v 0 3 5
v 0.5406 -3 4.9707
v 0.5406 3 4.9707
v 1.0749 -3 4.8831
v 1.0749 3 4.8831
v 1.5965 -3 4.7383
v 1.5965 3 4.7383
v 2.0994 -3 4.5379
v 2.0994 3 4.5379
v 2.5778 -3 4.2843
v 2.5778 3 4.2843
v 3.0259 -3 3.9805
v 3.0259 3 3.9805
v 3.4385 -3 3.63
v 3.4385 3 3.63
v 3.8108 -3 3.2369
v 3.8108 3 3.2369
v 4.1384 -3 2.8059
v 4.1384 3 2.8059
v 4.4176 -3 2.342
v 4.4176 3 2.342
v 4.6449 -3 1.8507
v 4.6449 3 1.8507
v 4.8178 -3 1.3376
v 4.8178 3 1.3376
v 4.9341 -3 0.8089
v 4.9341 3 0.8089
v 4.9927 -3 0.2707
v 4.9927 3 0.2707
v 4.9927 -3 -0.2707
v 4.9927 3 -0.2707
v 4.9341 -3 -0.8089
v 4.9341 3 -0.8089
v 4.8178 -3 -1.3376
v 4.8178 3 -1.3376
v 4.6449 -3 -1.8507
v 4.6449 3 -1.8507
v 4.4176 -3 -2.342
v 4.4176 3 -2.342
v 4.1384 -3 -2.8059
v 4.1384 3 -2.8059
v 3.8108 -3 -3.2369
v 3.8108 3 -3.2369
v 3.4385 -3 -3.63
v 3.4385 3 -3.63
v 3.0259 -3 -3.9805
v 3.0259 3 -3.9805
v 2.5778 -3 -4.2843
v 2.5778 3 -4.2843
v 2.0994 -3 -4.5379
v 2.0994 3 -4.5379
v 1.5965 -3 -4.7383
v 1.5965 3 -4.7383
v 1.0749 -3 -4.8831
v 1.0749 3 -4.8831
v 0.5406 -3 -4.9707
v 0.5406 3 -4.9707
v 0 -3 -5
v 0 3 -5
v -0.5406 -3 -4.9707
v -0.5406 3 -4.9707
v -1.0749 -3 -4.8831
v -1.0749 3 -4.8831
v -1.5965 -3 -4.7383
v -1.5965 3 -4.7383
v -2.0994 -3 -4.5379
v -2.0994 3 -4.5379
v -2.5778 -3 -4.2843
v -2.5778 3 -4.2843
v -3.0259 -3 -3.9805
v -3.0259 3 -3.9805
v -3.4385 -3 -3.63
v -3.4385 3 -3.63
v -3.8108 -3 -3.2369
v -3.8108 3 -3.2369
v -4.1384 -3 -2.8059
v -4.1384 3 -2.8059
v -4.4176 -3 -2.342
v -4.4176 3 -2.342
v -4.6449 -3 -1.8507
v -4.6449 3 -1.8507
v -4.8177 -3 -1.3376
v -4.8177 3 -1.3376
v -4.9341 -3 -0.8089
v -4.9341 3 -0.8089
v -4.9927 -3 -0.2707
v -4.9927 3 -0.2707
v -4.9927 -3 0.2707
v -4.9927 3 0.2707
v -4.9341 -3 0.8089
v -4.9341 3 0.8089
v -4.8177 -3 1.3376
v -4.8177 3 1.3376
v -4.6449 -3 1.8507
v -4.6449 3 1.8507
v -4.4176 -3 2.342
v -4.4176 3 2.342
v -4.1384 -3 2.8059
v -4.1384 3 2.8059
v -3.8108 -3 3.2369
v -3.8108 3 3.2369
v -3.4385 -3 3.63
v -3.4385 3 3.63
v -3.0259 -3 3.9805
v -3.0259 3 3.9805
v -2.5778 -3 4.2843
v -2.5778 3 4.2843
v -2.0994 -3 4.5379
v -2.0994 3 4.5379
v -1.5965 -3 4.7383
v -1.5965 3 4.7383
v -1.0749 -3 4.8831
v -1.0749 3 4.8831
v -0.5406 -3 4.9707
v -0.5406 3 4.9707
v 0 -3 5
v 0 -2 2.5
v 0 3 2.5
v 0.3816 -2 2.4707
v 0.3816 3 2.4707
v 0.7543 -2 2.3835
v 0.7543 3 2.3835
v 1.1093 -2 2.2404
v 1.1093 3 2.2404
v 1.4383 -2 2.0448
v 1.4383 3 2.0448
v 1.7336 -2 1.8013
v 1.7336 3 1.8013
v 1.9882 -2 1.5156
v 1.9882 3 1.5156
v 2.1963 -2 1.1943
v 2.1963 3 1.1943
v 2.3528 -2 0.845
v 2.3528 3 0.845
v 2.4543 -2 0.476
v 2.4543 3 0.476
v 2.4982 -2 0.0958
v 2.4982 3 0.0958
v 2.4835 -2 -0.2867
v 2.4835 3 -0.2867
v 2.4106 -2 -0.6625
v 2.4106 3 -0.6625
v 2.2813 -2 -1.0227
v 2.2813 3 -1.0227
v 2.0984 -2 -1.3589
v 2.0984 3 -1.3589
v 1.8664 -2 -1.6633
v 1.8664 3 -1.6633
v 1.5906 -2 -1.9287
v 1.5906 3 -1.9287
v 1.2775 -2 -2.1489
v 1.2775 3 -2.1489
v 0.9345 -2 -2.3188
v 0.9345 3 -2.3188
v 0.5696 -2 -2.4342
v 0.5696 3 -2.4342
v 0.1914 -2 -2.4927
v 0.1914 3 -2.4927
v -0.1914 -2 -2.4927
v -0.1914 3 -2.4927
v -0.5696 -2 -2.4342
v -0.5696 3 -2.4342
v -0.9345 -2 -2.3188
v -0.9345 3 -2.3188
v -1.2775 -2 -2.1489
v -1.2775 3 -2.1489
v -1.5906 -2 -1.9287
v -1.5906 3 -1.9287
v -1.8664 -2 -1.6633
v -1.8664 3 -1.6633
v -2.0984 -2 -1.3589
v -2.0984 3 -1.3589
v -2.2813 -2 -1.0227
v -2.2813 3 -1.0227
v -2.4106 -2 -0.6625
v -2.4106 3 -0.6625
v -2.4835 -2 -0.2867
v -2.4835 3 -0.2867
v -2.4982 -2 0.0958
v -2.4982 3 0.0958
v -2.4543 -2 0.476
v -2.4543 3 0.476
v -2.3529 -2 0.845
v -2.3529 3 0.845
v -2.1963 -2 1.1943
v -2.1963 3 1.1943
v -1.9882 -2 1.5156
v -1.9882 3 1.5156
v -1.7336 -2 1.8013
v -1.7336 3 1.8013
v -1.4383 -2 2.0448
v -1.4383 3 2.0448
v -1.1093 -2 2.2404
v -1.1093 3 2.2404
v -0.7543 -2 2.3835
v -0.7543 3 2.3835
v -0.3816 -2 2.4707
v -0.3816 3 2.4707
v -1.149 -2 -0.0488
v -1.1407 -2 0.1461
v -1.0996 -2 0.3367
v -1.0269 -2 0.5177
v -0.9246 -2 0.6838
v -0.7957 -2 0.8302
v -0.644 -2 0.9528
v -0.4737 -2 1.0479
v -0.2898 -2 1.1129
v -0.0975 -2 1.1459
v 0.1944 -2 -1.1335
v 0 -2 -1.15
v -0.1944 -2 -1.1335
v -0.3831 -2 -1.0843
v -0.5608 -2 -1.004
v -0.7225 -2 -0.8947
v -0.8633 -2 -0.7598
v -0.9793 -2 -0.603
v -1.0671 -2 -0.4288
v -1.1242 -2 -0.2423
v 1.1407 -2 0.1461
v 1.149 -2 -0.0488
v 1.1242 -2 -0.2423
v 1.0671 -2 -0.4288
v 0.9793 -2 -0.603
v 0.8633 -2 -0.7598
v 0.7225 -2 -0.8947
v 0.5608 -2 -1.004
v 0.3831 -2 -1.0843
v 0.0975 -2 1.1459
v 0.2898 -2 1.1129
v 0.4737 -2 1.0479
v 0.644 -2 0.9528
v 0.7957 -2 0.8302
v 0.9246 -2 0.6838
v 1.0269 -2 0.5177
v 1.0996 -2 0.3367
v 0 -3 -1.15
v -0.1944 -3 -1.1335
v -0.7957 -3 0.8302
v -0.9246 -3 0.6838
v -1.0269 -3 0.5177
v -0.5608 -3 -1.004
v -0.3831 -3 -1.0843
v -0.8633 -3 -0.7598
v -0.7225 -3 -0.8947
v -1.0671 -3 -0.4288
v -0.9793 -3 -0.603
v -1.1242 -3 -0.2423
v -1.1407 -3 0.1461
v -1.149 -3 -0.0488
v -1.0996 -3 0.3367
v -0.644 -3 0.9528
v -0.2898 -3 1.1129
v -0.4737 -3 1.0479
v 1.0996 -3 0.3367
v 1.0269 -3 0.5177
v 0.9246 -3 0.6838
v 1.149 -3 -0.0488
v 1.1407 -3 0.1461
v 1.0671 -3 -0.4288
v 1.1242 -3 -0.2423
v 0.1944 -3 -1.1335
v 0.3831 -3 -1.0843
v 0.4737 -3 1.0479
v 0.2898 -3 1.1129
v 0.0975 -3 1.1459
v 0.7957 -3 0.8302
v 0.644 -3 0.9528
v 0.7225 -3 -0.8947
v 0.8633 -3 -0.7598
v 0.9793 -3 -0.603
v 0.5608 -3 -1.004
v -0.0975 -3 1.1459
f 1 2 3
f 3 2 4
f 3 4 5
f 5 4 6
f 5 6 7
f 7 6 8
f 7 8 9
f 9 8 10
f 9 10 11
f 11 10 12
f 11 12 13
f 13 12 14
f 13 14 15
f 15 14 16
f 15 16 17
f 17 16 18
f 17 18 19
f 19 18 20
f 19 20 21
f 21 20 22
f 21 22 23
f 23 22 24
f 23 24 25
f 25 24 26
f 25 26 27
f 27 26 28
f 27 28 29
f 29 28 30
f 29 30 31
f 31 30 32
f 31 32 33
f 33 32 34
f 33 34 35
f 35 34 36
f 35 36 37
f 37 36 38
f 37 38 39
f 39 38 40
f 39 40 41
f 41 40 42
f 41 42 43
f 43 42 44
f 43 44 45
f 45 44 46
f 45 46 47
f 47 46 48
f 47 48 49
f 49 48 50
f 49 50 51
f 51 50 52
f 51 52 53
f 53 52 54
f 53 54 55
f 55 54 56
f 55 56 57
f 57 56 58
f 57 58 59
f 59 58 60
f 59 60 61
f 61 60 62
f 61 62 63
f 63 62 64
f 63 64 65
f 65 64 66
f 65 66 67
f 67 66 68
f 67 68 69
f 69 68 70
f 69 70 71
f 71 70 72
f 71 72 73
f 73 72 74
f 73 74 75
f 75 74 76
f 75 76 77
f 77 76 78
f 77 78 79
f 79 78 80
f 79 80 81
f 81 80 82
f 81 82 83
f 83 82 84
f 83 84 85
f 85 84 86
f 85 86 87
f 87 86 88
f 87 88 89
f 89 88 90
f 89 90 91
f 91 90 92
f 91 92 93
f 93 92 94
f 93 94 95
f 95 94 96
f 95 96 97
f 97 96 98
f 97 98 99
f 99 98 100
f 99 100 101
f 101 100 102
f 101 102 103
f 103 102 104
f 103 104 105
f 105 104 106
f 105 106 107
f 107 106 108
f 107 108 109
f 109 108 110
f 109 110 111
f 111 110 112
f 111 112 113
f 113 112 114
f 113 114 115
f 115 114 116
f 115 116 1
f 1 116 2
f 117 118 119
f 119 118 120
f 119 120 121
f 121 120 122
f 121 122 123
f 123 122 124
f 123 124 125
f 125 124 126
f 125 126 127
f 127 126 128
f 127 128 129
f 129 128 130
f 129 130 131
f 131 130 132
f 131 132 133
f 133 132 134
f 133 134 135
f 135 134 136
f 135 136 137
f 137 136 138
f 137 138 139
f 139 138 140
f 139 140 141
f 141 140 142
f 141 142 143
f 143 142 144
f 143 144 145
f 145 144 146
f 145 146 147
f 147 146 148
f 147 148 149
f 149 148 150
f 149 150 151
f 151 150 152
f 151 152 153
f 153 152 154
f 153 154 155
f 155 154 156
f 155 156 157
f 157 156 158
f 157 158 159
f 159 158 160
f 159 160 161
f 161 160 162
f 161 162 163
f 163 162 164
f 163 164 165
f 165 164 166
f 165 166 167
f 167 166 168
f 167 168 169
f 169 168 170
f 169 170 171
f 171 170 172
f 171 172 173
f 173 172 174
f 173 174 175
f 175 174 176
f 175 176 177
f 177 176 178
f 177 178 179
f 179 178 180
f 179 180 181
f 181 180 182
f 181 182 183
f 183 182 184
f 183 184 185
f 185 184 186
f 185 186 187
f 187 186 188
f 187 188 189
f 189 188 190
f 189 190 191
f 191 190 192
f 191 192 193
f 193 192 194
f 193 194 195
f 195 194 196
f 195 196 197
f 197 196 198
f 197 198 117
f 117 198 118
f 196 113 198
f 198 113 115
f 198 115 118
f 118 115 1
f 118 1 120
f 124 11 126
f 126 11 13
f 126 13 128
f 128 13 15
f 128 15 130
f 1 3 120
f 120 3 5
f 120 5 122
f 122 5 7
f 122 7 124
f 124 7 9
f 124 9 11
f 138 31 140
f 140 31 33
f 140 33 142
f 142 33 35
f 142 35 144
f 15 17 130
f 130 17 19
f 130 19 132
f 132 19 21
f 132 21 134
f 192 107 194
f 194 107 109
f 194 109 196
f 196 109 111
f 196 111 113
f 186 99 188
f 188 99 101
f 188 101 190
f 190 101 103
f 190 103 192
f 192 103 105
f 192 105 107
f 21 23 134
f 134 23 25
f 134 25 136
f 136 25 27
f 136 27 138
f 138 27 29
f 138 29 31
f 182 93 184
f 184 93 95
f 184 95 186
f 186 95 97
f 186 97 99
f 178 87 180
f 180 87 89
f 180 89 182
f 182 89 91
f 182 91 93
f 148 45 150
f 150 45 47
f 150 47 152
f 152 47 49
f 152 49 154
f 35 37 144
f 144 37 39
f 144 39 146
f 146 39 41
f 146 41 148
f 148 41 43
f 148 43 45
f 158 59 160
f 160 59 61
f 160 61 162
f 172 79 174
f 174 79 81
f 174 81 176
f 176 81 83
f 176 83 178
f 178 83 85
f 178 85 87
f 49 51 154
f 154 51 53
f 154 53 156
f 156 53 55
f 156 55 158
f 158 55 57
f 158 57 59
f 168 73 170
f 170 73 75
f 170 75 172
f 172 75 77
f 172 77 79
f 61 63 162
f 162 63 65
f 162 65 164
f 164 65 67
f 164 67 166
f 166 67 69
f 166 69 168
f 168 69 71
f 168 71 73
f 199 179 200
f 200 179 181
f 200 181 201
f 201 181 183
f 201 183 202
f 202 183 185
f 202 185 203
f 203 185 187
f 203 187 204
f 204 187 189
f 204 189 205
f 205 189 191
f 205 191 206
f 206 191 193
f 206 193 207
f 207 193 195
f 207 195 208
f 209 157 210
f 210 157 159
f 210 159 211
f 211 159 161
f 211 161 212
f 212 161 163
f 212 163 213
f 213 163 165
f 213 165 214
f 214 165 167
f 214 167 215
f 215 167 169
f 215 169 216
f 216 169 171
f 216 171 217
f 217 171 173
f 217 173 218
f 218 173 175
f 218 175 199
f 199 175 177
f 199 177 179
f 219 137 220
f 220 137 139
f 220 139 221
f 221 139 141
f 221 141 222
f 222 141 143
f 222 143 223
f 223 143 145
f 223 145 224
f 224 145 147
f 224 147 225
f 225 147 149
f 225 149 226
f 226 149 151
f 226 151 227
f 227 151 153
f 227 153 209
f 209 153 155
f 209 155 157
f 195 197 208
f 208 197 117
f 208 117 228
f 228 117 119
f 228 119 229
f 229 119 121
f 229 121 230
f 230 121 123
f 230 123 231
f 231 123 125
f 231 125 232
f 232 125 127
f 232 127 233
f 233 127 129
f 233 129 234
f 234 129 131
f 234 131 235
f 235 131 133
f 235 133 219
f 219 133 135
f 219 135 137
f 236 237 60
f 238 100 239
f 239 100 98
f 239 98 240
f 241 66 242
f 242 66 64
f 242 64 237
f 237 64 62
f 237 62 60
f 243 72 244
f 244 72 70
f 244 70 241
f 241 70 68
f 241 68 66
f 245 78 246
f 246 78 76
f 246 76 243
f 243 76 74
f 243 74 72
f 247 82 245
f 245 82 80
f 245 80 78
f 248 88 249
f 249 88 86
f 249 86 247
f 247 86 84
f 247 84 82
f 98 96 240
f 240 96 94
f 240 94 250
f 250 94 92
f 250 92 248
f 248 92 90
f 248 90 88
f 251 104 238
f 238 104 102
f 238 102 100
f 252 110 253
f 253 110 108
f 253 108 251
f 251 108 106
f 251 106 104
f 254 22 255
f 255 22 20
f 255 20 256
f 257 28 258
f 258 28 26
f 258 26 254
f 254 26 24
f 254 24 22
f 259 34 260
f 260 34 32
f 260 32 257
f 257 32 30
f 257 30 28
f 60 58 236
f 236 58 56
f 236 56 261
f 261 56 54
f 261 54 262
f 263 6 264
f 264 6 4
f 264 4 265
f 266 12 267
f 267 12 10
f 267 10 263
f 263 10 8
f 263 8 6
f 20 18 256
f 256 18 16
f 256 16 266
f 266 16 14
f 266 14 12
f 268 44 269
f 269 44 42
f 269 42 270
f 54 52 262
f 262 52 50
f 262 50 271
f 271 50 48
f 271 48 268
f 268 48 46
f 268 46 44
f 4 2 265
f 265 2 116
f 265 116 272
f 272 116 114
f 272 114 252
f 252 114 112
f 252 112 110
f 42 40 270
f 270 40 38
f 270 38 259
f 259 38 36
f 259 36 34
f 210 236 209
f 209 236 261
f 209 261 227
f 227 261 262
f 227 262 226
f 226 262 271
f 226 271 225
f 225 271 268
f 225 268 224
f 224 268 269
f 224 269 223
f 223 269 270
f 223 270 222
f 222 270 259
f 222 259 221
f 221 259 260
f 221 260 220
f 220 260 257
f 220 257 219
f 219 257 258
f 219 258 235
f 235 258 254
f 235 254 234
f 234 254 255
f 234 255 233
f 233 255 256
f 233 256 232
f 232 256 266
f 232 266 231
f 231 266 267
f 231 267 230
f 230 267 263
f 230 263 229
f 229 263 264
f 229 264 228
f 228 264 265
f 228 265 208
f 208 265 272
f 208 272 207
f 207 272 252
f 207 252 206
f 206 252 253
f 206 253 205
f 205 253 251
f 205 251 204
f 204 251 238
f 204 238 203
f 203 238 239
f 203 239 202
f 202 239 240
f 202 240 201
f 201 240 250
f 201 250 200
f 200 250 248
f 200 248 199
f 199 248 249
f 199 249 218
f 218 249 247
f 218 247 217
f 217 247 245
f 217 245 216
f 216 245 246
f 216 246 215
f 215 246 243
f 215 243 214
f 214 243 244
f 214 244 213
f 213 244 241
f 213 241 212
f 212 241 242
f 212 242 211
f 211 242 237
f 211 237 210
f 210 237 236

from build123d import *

# Parameters (mm, degrees)
SKETCH1_R                = 5
SKETCH1_R_2              = 2.5
BOSS_EXTRUDE1_DEPTH      = 3
BOSS_EXTRUDE1_DEPTH_BACK = 2
SKETCH2_R                = 5
BOSS_EXTRUDE2_DEPTH      = 1
SKETCH3_R                = 1.15
CUT_EXTRUDE1_DEPTH       = 1


with BuildPart() as part:
    # Sketch1 → Boss-Extrude1 (new body, two sides)
    with BuildSketch(Plane(origin=(0, 0, 0), x_dir=(1, 0, 0), z_dir=(0, 1, 0))) as boss_extrude1_sk:
        Circle(SKETCH1_R)
        Circle(SKETCH1_R_2, mode=Mode.SUBTRACT)
    extrude(amount=BOSS_EXTRUDE1_DEPTH)
    extrude(boss_extrude1_sk.sketch, amount=-BOSS_EXTRUDE1_DEPTH_BACK)

    # Sketch2 → Boss-Extrude2 (add)
    with BuildSketch(Plane.XZ.offset(2)):
        Circle(SKETCH2_R)
    extrude(amount=BOSS_EXTRUDE2_DEPTH)

    # Sketch3 → Cut-Extrude1 (cut)
    with BuildSketch(Plane.XZ.offset(3)):
        Circle(SKETCH3_R)
    extrude(amount=-CUT_EXTRUDE1_DEPTH, mode=Mode.SUBTRACT)


solid = part.part
